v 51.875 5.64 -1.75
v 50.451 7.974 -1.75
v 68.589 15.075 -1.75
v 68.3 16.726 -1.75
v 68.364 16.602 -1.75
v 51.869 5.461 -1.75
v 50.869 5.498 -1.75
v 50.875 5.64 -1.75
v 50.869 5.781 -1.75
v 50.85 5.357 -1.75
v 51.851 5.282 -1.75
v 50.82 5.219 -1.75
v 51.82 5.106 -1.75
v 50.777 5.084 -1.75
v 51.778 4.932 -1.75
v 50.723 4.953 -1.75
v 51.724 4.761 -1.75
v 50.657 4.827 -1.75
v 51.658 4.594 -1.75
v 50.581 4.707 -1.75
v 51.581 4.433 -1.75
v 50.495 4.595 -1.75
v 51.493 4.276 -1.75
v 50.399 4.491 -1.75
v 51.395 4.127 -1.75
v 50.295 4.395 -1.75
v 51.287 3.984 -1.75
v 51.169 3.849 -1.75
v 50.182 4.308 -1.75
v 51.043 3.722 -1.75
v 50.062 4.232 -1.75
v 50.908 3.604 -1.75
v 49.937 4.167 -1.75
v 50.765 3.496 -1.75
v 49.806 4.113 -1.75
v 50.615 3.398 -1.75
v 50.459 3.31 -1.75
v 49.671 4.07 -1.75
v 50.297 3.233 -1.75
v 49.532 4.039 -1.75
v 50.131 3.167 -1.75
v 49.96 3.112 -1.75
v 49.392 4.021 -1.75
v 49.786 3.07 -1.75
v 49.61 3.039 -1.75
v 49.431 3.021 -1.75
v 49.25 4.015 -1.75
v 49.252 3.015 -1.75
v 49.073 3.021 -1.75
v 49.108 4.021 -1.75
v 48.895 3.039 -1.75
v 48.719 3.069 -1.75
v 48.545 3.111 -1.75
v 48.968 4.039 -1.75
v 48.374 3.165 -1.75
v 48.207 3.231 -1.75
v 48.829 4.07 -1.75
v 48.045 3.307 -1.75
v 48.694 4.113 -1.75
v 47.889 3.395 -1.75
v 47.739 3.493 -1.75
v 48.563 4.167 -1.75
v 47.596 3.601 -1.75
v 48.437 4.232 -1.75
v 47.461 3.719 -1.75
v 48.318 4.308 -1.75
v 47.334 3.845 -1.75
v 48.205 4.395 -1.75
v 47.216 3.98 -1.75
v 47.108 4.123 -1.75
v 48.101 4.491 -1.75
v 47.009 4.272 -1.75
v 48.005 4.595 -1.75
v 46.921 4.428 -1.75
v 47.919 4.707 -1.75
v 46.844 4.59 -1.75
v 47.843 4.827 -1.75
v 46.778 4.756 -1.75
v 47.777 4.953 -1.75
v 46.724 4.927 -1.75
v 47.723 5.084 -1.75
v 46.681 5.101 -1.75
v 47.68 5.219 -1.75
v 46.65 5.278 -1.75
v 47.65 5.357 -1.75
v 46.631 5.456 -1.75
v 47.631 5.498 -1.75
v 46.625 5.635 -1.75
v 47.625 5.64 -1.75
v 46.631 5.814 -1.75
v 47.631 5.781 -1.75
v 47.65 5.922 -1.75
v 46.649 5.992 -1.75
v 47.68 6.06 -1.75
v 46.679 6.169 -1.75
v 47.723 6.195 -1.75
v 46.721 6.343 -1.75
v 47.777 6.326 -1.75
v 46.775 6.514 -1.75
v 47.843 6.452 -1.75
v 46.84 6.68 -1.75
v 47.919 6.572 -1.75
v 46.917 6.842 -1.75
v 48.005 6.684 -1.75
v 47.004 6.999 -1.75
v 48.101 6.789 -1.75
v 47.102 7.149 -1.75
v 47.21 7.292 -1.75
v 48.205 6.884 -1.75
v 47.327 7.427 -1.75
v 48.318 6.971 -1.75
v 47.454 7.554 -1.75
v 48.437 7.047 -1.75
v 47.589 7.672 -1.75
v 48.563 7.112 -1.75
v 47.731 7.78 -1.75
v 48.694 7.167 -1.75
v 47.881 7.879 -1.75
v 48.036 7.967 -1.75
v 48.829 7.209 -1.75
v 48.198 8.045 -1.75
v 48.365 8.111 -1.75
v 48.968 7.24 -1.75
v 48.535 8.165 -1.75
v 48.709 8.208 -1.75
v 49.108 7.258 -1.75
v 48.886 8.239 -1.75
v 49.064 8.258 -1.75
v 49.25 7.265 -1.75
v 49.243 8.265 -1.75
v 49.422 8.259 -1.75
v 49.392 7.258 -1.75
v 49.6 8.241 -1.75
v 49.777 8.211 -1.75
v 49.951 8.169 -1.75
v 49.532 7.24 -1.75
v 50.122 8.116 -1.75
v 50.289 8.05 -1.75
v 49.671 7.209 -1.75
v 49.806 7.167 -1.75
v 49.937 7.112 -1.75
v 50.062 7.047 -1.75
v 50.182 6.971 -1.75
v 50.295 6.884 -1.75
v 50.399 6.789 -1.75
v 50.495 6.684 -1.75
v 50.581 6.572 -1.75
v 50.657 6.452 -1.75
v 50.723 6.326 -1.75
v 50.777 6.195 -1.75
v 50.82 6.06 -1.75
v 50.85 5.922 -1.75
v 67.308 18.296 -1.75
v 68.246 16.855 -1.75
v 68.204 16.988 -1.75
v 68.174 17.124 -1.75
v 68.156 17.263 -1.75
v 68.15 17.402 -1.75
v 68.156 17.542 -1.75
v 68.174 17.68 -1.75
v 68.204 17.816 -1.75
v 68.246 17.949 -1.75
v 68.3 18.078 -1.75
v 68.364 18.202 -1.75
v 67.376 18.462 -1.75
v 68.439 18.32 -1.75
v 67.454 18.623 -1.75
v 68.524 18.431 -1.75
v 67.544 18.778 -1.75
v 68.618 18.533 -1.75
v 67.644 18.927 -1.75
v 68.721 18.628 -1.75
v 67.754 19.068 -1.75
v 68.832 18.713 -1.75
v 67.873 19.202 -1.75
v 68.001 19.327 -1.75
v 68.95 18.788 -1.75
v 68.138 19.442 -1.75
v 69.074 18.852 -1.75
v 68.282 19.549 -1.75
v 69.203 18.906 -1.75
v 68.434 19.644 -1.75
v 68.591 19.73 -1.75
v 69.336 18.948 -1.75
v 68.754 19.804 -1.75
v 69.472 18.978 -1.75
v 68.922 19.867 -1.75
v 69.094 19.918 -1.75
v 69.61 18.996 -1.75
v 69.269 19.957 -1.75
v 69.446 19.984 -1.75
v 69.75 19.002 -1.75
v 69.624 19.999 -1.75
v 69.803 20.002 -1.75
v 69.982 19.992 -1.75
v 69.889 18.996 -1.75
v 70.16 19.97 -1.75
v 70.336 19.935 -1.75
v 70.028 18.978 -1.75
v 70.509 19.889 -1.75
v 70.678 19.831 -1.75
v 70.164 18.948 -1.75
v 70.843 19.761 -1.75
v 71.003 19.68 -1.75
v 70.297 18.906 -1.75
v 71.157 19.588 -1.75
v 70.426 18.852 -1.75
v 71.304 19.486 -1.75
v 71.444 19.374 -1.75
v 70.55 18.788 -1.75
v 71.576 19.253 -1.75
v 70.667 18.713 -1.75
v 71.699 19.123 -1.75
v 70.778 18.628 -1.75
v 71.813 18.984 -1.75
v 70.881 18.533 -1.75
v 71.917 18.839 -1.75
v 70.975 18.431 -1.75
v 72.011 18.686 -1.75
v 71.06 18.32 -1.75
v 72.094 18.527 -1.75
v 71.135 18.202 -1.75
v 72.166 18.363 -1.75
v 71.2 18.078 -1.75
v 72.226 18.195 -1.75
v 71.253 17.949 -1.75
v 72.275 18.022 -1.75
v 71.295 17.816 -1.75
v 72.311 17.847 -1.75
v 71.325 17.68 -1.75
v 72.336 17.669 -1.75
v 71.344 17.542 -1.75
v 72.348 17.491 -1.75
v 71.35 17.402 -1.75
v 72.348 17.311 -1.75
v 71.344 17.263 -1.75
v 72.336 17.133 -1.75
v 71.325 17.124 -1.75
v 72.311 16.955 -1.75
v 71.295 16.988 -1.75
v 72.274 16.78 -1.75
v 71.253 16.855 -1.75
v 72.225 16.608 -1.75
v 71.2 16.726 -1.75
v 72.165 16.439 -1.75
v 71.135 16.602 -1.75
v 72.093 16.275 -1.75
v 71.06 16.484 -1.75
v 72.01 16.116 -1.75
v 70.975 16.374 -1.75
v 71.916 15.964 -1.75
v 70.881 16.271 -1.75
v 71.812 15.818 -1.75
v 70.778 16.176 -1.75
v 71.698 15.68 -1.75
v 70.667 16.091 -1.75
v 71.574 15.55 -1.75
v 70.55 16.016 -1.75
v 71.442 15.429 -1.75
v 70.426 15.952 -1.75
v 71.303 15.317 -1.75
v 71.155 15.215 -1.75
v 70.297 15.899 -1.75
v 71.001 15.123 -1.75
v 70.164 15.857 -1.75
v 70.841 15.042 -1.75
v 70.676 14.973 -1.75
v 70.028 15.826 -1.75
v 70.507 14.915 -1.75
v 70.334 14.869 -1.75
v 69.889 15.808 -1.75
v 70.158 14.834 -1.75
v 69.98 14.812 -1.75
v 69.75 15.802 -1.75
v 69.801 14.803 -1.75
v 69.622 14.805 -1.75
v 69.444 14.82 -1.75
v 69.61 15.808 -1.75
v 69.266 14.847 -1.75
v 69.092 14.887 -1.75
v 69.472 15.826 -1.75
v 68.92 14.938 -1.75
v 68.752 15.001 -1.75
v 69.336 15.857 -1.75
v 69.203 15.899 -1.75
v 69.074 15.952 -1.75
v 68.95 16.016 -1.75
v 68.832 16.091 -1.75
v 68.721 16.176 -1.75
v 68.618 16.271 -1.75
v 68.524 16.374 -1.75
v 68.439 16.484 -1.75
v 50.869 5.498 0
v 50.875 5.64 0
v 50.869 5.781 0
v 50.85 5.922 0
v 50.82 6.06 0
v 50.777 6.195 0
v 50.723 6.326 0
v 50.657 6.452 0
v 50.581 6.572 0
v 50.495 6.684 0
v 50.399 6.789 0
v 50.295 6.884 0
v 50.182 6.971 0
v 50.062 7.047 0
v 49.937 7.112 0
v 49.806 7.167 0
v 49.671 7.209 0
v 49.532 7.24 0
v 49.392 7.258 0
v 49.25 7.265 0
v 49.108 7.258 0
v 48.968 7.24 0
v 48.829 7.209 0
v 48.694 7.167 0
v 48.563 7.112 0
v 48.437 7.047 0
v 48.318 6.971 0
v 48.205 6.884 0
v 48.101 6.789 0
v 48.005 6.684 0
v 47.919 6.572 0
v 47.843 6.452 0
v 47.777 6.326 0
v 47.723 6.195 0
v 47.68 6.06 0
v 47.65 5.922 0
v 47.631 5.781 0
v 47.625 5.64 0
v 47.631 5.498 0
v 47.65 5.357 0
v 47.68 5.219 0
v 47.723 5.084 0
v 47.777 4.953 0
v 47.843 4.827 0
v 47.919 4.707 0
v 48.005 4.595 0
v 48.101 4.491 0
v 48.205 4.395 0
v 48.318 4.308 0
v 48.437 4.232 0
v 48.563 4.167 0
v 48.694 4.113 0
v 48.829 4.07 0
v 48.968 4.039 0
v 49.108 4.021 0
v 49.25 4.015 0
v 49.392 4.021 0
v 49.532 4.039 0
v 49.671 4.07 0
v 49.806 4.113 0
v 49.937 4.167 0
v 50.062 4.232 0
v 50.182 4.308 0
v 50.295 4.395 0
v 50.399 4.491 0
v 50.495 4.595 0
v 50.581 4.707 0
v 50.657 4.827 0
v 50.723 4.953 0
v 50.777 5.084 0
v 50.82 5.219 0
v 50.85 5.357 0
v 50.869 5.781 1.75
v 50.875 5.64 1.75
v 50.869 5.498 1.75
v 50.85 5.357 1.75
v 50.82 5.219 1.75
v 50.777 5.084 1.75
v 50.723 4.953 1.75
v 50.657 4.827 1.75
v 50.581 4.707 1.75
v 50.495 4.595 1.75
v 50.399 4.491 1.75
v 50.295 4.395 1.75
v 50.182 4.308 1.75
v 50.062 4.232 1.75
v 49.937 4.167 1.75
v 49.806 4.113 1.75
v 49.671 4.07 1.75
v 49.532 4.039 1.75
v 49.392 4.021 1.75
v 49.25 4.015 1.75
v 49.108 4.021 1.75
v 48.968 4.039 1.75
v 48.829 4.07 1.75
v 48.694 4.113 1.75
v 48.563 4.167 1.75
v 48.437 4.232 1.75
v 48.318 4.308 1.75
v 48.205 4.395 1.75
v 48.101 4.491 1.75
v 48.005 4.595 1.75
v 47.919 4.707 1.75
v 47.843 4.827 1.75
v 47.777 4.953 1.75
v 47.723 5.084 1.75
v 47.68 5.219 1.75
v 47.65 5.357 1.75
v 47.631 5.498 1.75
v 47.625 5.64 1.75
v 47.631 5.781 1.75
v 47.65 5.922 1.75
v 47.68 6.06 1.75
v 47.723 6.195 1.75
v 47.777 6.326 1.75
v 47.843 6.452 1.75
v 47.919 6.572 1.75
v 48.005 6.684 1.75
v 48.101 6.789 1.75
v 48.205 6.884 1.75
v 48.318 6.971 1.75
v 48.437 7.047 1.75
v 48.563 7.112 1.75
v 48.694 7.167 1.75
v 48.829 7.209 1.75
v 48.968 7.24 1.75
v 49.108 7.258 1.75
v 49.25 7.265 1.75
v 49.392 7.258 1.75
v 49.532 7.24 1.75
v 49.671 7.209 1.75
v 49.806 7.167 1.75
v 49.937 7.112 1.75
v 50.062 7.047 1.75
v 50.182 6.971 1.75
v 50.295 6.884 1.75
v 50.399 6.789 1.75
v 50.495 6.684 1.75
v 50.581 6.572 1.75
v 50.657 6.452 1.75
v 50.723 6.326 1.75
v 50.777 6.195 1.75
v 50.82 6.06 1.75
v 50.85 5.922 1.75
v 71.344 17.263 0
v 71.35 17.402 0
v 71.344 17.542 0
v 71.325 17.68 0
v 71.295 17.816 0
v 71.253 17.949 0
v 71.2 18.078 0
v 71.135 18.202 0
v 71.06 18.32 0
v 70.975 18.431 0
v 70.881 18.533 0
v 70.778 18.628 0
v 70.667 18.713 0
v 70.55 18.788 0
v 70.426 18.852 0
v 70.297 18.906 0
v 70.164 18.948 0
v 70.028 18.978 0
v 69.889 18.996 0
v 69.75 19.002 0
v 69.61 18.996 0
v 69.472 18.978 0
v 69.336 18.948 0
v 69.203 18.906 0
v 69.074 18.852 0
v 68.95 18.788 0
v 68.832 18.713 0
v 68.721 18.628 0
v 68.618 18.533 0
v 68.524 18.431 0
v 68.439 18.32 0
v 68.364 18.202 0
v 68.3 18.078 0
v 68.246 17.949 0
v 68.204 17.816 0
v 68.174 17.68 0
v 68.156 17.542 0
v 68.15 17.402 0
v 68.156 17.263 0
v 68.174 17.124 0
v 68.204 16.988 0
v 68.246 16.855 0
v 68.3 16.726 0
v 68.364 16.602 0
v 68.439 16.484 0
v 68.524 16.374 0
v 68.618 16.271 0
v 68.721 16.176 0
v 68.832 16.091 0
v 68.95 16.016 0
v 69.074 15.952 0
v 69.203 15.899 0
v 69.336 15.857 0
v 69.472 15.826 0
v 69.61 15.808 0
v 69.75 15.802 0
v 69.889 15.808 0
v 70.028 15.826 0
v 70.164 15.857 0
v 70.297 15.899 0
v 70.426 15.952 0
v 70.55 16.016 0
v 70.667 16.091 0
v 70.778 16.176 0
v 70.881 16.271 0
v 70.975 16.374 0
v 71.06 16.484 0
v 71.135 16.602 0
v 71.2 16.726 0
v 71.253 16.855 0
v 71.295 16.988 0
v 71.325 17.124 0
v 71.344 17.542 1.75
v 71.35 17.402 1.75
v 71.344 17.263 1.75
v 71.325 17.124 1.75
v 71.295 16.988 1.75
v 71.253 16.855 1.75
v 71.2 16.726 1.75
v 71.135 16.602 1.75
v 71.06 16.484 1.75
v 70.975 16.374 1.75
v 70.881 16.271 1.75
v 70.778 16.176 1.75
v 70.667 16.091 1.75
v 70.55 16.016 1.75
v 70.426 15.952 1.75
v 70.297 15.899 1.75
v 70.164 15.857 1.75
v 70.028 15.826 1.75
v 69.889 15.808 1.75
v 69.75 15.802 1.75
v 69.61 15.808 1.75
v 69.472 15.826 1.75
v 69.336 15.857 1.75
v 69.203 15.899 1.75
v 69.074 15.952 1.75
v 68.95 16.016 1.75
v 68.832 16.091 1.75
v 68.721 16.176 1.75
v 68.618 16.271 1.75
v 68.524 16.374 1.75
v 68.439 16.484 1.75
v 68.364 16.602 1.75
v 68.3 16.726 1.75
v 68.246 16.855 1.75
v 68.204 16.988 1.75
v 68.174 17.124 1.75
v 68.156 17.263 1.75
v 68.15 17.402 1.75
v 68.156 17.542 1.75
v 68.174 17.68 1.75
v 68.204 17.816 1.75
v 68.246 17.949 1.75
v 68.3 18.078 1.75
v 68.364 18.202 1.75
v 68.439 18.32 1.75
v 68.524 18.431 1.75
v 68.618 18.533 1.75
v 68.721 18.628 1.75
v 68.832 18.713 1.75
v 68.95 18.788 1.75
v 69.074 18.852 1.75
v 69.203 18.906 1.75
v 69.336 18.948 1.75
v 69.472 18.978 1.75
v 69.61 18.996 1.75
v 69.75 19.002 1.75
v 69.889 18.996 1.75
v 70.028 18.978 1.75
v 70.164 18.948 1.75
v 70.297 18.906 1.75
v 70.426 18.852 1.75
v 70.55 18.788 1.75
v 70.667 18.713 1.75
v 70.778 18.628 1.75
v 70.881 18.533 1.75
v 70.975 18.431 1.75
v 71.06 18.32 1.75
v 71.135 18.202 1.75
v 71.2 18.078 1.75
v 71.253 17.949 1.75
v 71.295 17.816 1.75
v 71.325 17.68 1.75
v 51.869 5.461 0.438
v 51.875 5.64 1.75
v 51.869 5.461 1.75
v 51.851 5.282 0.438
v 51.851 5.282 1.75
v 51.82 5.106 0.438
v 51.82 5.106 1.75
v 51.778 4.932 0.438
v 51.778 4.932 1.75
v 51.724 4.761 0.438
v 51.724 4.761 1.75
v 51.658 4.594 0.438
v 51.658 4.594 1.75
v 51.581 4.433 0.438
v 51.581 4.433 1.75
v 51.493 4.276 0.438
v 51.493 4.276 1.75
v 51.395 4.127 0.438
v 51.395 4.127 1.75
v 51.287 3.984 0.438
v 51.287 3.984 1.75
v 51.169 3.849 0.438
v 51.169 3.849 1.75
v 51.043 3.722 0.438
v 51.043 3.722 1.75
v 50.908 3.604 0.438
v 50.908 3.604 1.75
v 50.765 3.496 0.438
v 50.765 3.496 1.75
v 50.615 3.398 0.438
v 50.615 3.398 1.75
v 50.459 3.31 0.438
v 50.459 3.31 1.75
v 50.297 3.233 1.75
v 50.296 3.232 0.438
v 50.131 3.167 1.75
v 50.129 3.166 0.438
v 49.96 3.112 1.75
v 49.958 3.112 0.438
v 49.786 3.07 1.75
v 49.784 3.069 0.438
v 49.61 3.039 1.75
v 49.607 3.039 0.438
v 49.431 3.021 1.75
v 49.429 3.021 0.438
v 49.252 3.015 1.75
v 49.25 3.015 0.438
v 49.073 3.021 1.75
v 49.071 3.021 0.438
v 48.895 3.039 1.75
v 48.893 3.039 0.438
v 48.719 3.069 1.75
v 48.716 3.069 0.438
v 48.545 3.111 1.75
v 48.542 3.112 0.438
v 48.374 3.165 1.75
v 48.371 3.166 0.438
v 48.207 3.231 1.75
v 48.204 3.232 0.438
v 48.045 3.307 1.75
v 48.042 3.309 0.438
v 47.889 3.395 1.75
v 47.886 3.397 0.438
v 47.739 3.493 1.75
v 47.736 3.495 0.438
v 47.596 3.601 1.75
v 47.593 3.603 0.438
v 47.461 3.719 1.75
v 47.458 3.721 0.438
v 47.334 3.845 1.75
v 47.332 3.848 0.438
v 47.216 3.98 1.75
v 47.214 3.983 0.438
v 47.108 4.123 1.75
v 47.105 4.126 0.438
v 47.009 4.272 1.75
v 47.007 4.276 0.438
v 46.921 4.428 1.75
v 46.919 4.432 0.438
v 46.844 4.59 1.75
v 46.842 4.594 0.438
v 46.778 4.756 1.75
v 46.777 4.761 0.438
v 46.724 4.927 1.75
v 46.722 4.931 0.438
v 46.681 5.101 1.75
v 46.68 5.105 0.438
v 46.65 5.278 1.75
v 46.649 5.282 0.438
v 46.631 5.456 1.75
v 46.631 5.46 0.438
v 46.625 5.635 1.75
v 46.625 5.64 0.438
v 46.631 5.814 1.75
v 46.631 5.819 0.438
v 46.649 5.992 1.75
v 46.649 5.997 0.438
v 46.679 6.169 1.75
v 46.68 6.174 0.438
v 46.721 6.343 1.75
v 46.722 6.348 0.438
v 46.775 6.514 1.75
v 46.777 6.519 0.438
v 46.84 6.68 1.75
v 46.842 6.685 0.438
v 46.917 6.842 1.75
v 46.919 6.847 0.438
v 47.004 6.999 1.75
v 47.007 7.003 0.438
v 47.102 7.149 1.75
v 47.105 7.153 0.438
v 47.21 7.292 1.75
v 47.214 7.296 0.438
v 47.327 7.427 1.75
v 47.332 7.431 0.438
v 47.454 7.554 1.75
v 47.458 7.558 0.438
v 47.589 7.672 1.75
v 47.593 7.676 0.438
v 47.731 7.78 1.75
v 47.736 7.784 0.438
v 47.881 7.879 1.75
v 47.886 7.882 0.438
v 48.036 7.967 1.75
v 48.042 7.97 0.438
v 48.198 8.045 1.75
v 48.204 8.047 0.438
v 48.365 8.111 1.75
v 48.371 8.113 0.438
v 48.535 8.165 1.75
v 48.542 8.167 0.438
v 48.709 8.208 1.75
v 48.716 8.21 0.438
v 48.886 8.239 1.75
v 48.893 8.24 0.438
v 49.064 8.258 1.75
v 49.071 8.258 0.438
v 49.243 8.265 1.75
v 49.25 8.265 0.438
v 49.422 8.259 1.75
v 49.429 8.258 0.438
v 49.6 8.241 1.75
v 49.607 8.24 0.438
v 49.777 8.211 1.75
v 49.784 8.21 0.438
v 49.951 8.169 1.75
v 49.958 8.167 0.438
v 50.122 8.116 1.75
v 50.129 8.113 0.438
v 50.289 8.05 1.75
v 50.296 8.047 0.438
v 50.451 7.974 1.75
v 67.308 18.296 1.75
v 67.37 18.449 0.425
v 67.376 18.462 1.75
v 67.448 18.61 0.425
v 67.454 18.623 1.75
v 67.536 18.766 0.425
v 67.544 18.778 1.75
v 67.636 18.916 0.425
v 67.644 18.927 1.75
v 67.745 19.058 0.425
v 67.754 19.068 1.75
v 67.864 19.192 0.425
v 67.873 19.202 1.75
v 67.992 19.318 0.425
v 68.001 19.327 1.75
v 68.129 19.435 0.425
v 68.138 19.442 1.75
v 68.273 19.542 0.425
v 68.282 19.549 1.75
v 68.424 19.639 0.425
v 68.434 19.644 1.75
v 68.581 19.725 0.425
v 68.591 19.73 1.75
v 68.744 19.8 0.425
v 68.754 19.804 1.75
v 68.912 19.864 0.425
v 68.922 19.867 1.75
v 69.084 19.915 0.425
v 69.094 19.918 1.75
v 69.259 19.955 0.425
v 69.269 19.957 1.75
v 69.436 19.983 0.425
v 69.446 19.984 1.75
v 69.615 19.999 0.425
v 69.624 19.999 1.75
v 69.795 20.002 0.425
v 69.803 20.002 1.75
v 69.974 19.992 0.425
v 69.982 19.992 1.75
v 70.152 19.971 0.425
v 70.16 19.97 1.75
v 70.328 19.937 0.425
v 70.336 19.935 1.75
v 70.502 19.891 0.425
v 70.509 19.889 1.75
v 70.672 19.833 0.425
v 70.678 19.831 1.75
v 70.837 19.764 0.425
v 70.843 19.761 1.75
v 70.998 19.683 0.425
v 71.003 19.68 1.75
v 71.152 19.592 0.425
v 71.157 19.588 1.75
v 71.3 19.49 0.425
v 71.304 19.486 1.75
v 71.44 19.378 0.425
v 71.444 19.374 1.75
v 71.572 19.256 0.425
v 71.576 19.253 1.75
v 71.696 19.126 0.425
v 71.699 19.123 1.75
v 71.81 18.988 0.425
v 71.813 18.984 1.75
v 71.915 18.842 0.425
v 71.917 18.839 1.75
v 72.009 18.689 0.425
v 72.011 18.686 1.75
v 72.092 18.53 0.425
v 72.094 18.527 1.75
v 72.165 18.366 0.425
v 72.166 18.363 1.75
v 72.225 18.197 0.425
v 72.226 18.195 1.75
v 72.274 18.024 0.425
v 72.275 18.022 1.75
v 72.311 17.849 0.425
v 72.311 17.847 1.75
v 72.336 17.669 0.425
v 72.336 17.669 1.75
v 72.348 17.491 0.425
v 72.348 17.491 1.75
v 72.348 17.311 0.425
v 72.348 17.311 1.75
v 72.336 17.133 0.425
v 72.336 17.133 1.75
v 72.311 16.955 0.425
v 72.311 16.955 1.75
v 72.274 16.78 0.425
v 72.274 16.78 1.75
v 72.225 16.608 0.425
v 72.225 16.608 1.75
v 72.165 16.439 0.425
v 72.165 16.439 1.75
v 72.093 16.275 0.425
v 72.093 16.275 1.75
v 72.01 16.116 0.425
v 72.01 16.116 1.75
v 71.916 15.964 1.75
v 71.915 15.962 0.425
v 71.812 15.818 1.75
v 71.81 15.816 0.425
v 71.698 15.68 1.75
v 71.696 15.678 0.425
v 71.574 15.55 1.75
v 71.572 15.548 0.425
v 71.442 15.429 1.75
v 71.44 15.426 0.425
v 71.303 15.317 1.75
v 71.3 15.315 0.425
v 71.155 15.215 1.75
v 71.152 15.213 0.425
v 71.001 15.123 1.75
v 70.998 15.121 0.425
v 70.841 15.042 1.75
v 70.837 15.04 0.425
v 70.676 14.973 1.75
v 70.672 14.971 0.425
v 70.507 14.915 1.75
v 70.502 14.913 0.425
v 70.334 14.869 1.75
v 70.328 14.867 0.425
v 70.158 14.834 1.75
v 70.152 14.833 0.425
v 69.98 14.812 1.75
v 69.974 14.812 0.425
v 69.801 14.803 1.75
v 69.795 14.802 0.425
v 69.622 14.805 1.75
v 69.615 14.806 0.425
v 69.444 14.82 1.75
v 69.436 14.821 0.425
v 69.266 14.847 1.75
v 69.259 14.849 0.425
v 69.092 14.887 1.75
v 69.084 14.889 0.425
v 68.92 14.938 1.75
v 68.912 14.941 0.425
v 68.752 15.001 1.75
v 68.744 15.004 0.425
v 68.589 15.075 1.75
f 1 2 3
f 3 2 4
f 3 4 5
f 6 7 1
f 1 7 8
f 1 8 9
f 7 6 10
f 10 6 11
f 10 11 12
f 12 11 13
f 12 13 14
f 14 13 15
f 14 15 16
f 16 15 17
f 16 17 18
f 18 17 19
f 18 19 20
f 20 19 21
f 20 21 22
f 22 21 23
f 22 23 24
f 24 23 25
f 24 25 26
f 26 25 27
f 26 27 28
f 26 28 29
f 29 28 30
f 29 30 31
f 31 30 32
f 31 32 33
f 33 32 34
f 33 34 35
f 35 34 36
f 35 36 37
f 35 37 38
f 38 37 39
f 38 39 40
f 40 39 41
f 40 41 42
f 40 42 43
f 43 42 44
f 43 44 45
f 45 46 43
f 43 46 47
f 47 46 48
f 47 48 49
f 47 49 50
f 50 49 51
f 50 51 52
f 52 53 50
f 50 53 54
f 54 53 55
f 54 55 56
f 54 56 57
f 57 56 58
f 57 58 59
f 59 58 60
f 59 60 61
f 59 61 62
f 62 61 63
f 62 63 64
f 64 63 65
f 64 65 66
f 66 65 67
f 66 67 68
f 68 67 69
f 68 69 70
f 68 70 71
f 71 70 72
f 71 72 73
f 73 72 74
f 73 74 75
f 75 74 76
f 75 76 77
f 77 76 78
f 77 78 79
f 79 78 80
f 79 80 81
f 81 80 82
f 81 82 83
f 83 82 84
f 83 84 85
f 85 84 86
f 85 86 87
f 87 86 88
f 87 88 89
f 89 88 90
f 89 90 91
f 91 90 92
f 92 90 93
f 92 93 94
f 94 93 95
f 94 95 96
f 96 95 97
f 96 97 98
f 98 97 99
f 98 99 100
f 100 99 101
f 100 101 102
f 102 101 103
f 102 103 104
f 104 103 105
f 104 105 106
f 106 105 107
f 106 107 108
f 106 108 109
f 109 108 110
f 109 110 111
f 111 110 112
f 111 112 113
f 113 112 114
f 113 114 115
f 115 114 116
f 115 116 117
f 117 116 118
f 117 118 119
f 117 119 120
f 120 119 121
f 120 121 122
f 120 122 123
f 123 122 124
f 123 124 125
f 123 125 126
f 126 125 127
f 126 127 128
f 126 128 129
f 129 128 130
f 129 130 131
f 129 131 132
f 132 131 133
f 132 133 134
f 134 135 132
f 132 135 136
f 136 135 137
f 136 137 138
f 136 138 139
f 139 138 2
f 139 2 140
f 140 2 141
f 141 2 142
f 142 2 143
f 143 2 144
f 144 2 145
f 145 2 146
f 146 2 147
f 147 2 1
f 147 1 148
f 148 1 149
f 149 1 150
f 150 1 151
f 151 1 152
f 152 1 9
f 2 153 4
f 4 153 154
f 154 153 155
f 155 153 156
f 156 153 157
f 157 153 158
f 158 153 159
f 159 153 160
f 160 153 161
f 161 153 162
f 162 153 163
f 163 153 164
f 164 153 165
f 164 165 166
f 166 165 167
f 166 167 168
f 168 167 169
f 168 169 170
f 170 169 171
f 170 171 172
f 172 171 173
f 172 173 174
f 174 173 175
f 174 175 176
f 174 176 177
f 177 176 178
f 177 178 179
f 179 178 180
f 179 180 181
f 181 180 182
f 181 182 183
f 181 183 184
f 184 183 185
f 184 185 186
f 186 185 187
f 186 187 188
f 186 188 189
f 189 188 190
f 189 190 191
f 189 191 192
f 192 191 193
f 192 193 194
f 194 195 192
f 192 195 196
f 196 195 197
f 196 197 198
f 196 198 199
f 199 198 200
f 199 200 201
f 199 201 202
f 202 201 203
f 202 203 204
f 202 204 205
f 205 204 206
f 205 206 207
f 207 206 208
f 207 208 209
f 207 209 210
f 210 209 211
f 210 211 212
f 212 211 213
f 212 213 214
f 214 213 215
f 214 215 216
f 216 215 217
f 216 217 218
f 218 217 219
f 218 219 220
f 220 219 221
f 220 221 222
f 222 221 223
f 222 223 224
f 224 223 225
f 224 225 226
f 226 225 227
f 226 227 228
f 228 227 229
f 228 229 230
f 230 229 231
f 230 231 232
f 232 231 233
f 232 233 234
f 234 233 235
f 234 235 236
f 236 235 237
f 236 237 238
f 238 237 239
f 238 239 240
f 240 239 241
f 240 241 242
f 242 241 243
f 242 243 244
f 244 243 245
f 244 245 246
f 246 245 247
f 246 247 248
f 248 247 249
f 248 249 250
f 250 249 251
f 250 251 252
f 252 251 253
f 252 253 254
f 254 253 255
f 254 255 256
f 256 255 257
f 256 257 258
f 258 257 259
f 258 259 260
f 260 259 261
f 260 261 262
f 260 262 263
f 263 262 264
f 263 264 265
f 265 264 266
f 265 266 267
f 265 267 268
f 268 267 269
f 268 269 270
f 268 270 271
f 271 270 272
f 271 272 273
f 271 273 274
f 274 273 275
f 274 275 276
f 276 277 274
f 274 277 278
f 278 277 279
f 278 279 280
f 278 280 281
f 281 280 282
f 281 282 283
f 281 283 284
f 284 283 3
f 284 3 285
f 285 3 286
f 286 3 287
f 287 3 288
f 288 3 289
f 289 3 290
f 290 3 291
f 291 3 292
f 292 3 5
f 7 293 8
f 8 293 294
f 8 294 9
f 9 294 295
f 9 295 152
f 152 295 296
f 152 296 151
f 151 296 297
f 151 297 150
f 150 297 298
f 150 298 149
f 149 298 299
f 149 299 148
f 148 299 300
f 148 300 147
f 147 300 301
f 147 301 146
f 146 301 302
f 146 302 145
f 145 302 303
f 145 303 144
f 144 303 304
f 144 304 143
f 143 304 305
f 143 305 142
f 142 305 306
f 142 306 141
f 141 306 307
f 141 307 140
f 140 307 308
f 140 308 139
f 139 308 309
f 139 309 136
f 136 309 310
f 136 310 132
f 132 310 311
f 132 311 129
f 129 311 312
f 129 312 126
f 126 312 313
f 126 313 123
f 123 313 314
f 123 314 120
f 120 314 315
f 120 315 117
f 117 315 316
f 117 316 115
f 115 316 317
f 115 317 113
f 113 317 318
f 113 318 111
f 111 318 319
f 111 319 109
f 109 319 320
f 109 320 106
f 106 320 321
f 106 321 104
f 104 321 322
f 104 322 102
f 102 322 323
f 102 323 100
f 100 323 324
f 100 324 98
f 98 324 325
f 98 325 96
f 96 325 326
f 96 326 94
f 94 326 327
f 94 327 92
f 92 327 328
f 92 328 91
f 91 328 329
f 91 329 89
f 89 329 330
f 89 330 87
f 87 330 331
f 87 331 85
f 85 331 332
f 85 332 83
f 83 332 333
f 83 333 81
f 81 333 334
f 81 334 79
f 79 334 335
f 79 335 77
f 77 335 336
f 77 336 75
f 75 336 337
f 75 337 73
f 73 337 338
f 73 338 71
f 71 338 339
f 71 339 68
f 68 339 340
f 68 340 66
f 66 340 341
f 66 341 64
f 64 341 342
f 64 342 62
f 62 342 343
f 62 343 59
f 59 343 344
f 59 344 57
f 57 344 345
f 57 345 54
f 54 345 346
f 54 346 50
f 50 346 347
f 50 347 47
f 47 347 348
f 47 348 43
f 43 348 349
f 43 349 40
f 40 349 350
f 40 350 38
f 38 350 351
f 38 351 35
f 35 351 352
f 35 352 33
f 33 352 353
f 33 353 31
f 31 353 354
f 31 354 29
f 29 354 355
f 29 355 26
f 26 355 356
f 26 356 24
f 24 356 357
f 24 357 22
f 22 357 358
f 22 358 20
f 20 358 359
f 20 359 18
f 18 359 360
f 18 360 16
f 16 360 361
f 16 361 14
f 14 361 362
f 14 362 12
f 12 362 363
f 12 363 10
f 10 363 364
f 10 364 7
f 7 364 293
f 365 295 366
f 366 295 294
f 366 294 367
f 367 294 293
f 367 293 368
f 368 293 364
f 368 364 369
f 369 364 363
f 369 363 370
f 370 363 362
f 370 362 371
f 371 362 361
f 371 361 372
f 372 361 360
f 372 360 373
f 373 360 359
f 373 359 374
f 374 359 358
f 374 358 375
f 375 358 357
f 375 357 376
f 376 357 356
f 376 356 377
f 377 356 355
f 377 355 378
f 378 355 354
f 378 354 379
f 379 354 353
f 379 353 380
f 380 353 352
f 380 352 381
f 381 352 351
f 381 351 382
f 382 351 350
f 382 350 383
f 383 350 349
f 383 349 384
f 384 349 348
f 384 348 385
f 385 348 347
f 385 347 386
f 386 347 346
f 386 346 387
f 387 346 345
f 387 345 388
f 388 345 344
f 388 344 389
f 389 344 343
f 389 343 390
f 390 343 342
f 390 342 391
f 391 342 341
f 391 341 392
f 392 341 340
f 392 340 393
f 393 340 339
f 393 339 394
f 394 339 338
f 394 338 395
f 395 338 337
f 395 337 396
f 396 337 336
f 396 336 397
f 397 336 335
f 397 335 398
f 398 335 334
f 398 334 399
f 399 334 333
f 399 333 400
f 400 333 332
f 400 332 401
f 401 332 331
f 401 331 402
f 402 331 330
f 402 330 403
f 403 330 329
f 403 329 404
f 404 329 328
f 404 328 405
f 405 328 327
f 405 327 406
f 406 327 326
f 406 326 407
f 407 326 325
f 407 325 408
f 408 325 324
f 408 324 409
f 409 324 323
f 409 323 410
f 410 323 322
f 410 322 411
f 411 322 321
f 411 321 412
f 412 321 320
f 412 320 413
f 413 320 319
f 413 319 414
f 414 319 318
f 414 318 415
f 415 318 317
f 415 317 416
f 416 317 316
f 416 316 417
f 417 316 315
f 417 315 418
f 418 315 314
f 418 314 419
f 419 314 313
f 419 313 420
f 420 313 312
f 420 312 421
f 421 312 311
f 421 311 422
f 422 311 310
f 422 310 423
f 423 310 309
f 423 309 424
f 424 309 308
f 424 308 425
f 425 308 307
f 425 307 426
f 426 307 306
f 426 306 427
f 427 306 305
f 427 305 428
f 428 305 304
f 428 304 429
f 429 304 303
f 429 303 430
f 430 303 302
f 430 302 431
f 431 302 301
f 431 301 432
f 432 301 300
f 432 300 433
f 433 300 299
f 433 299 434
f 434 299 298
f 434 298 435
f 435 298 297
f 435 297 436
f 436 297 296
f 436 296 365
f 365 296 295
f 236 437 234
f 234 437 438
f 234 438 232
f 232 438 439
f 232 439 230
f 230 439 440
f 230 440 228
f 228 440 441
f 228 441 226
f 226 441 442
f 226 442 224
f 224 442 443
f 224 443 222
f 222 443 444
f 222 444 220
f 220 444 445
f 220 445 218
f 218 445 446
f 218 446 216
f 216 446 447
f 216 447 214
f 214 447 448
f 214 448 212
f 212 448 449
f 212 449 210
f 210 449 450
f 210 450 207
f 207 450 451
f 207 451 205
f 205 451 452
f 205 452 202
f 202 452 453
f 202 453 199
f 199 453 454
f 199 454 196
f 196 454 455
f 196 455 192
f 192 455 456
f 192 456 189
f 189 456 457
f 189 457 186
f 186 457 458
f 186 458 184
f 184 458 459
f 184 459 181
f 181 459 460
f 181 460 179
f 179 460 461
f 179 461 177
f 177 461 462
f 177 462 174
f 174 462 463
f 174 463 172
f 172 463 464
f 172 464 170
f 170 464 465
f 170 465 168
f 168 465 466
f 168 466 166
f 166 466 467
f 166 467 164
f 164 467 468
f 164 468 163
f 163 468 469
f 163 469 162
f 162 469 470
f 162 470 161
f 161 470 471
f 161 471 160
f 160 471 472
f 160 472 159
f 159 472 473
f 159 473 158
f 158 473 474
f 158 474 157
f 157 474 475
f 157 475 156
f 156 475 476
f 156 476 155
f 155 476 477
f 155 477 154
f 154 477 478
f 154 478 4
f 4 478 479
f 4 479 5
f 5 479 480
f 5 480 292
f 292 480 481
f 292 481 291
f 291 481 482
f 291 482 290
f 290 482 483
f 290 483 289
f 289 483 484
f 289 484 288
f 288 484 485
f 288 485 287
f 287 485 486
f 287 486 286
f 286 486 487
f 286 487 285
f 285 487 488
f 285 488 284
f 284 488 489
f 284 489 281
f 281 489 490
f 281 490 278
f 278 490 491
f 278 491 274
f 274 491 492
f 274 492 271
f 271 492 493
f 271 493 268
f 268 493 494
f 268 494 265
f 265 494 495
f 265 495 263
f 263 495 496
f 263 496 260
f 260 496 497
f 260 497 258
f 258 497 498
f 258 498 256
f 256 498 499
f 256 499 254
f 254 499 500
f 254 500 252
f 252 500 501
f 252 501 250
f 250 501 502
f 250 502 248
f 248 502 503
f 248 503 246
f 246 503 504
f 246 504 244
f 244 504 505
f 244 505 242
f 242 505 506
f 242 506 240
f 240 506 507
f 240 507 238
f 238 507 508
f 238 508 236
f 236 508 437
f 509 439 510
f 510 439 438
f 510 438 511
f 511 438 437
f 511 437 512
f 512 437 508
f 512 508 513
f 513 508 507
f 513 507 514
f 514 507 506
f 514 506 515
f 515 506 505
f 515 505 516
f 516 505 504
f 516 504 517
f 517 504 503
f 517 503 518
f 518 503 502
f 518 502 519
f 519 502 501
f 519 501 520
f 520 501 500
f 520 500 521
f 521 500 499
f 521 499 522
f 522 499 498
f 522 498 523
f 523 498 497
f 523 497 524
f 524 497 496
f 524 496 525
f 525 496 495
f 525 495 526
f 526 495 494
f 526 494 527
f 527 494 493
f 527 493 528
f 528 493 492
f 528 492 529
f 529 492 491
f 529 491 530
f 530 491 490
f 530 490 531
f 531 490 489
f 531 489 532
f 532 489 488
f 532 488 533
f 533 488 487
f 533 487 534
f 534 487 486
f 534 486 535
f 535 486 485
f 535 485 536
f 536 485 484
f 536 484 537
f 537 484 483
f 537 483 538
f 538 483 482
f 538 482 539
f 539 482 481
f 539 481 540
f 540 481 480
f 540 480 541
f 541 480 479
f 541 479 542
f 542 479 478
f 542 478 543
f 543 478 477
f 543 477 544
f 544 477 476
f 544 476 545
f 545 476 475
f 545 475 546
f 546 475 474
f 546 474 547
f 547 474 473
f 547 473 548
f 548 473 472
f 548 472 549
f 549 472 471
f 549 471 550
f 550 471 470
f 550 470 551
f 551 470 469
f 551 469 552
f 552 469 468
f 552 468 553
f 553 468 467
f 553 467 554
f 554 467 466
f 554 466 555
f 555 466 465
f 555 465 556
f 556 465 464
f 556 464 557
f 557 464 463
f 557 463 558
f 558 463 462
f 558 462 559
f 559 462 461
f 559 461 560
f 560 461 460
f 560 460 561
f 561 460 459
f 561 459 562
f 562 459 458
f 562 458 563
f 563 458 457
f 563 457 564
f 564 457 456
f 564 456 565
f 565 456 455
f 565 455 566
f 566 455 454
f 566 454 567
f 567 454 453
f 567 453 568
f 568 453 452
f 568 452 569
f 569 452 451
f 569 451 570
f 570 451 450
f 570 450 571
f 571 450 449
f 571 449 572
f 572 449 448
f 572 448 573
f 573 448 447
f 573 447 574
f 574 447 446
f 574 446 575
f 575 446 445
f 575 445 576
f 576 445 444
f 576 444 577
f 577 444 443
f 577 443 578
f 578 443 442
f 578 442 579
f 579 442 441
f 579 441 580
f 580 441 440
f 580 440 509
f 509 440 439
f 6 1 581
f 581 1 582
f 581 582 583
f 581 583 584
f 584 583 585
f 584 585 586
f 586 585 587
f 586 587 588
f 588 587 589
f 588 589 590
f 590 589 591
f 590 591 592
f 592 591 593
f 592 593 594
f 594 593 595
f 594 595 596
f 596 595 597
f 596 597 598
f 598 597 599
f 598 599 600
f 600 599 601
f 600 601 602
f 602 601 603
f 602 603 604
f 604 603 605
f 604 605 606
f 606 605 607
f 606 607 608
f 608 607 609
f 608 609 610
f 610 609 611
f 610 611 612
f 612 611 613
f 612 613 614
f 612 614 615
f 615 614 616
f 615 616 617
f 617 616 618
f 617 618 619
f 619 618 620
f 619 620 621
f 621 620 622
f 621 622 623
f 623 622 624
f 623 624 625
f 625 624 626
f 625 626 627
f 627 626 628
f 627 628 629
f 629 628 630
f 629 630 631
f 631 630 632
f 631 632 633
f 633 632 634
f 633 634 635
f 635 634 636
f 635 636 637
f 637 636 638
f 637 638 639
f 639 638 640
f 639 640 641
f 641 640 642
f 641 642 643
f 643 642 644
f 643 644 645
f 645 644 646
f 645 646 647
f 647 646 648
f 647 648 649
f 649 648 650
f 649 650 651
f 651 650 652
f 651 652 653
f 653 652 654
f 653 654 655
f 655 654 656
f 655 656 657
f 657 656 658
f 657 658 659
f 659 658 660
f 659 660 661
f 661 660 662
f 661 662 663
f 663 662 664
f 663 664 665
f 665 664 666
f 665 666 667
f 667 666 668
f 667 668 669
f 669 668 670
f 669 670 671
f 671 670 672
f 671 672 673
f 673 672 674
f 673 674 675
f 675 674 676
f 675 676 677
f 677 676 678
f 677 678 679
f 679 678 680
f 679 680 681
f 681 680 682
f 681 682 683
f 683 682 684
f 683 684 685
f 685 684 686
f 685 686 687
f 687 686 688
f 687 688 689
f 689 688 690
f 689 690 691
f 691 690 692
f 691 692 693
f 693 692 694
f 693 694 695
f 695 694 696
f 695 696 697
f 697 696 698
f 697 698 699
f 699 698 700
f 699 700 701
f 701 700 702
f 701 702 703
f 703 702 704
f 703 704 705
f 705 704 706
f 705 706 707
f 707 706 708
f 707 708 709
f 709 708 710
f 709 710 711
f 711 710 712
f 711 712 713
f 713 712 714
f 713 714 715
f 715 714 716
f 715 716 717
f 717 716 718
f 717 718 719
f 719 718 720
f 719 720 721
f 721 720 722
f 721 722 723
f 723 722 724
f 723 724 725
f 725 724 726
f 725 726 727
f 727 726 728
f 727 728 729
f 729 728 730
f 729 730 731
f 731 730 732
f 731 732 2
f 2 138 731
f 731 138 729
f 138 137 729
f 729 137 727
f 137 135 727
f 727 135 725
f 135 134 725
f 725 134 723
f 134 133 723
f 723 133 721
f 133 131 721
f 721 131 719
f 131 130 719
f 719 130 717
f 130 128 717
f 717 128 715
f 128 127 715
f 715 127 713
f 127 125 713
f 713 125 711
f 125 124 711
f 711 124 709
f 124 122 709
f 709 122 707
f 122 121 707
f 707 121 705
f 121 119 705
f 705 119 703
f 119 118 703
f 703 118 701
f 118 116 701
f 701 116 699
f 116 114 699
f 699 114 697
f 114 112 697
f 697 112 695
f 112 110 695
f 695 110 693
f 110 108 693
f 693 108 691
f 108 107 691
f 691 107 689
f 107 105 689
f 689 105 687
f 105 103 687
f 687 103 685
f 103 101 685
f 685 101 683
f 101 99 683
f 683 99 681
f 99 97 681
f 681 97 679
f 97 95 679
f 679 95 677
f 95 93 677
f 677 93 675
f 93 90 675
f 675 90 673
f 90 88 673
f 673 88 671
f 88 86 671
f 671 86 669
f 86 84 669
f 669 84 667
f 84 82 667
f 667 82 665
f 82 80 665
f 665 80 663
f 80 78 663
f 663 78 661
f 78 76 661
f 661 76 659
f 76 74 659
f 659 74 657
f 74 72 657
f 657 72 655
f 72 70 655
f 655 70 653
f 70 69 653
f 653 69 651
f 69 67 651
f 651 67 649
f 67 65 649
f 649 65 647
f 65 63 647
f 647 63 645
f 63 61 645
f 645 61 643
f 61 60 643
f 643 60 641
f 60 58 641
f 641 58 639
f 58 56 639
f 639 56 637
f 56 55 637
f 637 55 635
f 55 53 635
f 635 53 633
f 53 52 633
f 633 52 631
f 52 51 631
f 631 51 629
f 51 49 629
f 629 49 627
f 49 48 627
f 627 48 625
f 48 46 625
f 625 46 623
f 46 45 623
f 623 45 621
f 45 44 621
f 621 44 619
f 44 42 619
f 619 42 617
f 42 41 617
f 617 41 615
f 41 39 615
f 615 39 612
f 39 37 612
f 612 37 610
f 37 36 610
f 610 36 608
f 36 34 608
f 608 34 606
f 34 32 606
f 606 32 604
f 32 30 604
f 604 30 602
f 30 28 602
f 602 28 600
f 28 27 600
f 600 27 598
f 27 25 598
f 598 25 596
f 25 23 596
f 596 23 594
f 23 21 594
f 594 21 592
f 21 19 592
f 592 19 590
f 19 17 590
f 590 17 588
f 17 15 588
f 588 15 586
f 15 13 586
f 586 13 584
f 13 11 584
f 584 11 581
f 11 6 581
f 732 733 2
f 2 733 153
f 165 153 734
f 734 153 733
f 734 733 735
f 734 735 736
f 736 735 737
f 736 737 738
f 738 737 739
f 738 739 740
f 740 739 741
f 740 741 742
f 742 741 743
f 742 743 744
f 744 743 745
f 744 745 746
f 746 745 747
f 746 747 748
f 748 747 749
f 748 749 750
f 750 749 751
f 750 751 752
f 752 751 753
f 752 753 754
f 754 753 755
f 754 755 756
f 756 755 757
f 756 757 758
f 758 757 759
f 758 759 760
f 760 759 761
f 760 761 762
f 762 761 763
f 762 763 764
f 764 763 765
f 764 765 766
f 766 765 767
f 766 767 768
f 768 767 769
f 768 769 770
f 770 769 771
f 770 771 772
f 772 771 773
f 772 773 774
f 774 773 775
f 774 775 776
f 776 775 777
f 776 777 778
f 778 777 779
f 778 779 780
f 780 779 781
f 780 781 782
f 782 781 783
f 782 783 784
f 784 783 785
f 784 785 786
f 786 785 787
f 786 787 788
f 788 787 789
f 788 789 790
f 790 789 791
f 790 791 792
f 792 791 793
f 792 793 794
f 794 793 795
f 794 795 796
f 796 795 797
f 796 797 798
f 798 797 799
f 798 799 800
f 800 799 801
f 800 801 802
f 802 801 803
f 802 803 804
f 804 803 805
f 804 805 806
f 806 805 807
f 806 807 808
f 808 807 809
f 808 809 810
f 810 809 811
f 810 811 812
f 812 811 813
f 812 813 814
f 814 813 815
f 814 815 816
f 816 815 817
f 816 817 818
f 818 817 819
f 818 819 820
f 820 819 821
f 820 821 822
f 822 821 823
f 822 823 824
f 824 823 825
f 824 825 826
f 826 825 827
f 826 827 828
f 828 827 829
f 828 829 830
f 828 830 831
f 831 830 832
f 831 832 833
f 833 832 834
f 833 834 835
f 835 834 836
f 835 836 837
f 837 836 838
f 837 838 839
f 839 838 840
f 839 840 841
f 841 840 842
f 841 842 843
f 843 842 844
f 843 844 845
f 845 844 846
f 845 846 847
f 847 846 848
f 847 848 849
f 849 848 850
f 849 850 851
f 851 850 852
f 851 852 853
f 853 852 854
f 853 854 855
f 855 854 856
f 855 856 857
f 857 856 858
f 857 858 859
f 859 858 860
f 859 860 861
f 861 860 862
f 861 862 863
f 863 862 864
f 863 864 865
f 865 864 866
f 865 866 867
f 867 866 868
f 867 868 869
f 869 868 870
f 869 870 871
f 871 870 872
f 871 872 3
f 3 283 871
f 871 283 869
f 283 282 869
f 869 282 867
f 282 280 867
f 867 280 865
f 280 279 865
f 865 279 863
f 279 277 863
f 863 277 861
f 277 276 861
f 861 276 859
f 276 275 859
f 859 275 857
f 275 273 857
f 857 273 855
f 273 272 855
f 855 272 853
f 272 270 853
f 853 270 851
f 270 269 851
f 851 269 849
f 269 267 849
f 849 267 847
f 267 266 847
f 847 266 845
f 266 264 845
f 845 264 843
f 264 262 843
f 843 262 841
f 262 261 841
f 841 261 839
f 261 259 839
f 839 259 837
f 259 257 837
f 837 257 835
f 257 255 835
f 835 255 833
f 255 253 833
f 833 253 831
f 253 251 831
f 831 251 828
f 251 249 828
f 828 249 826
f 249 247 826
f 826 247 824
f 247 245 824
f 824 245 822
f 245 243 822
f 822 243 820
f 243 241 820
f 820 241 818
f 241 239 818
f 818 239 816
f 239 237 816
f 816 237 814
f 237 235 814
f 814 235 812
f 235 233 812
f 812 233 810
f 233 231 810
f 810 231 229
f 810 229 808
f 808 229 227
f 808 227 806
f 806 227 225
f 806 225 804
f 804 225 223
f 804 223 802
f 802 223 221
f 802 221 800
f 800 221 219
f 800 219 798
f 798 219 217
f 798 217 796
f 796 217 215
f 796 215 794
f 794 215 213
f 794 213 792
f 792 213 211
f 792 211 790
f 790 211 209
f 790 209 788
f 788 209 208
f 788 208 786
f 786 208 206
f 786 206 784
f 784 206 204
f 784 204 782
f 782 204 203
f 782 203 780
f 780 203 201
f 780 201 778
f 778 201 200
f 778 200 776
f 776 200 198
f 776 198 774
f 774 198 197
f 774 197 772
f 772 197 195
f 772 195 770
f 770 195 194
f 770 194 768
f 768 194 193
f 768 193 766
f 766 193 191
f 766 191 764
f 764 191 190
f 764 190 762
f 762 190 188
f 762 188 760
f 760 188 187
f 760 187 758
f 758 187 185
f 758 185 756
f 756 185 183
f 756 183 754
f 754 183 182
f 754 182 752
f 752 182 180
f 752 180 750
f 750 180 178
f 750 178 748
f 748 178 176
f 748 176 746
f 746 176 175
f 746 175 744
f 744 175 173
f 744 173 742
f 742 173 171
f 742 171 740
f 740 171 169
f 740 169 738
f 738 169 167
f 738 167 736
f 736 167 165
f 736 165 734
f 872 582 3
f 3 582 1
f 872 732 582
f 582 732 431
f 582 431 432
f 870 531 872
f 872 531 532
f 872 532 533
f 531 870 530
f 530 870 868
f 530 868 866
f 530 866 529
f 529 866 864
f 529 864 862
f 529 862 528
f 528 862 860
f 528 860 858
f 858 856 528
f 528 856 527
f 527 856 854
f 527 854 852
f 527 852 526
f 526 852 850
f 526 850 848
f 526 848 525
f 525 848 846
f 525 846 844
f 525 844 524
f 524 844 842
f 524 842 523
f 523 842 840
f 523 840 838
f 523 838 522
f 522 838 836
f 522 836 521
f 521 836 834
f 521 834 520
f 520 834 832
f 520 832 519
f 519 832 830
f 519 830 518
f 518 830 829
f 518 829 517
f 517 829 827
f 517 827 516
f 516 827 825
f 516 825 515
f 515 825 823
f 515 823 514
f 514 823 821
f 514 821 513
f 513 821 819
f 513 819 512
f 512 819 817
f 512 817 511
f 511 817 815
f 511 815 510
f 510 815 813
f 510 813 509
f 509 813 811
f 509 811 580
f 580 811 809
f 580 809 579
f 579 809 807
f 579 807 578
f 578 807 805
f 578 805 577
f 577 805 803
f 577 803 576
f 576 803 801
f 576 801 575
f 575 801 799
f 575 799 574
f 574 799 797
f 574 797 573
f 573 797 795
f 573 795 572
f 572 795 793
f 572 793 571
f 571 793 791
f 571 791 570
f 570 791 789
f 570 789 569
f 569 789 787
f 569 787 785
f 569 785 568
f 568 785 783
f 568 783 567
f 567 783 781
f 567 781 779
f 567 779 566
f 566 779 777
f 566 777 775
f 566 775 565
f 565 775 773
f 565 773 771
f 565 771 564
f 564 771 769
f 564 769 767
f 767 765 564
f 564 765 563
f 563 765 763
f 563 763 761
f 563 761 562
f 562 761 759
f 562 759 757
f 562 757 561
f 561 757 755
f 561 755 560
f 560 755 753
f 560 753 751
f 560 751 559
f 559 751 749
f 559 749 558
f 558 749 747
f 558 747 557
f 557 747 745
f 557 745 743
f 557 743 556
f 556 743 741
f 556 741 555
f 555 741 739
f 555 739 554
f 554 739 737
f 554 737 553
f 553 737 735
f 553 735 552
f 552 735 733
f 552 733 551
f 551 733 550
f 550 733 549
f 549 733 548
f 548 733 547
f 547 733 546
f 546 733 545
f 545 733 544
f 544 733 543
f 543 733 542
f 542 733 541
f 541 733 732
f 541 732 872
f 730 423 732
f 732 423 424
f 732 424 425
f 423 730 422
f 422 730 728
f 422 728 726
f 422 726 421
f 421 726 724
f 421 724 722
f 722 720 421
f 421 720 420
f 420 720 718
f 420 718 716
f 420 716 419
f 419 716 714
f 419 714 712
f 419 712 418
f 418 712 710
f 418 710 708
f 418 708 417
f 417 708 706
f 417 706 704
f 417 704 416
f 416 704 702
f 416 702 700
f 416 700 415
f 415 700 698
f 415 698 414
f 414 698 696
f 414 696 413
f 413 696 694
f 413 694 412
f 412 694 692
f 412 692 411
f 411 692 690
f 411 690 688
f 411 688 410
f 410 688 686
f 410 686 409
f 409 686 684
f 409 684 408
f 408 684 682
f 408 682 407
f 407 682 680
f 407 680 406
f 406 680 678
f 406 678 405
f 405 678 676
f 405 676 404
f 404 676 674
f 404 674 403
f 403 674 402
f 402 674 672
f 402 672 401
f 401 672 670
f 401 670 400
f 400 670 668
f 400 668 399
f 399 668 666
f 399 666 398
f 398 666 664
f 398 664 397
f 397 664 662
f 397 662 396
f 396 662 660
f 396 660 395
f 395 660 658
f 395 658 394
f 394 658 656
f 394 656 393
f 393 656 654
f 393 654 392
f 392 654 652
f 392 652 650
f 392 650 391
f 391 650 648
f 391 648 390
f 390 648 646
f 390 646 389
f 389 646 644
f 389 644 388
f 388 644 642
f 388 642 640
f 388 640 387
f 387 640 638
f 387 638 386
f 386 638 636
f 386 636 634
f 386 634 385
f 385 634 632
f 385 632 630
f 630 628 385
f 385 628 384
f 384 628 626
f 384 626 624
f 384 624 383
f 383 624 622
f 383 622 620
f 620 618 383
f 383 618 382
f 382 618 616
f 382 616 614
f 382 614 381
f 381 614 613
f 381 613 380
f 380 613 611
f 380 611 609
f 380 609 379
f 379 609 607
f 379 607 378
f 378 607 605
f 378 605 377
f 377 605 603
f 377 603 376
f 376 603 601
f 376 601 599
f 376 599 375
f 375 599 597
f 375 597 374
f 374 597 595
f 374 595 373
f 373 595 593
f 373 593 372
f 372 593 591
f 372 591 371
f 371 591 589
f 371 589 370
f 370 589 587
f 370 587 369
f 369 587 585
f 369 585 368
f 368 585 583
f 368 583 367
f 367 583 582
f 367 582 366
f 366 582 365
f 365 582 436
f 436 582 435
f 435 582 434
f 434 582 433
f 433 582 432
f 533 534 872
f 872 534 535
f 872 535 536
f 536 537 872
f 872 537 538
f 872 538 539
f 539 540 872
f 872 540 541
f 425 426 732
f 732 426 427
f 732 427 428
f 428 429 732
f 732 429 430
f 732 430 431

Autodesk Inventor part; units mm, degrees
ref_plane "YZ Plane" through (0, 0, 0) normal (1, 0, 0) x (0, 1, 0)
ref_plane "XZ Plane" through (0, 0, 0) normal (0, 1, 0) x (-1, 0, 0)
ref_plane "XY Plane" through (0, 0, 0) normal (0, 0, 1) x (1, 0, 0)
sketch "Sketch1" plane through (0, 0, 0) normal (0, 0, 1) x (1, 0, 0)
  circle A0 centre (49.25, 5.6396) radius 1.625 projected
  circle A1 centre (69.7498, 17.4021) radius 1.6 projected
  circle A2 centre (49.25, 5.6396) radius 2.625
  circle A3 centre (69.7498, 17.4021) radius 2.6
  line L0 (50.4505, 7.9739) -> (67.3082, 18.2959)
  line L1 (51.875, 5.6396) -> (68.5894, 15.0754)
  point P0 (0, 0)
  dimension "d0" = 1
  dimension "d1" = 1
extrude "Extrusion1" add sketch "Sketch1" along normal mid plane 3.5
properties part number "palanca_proxima_media"
